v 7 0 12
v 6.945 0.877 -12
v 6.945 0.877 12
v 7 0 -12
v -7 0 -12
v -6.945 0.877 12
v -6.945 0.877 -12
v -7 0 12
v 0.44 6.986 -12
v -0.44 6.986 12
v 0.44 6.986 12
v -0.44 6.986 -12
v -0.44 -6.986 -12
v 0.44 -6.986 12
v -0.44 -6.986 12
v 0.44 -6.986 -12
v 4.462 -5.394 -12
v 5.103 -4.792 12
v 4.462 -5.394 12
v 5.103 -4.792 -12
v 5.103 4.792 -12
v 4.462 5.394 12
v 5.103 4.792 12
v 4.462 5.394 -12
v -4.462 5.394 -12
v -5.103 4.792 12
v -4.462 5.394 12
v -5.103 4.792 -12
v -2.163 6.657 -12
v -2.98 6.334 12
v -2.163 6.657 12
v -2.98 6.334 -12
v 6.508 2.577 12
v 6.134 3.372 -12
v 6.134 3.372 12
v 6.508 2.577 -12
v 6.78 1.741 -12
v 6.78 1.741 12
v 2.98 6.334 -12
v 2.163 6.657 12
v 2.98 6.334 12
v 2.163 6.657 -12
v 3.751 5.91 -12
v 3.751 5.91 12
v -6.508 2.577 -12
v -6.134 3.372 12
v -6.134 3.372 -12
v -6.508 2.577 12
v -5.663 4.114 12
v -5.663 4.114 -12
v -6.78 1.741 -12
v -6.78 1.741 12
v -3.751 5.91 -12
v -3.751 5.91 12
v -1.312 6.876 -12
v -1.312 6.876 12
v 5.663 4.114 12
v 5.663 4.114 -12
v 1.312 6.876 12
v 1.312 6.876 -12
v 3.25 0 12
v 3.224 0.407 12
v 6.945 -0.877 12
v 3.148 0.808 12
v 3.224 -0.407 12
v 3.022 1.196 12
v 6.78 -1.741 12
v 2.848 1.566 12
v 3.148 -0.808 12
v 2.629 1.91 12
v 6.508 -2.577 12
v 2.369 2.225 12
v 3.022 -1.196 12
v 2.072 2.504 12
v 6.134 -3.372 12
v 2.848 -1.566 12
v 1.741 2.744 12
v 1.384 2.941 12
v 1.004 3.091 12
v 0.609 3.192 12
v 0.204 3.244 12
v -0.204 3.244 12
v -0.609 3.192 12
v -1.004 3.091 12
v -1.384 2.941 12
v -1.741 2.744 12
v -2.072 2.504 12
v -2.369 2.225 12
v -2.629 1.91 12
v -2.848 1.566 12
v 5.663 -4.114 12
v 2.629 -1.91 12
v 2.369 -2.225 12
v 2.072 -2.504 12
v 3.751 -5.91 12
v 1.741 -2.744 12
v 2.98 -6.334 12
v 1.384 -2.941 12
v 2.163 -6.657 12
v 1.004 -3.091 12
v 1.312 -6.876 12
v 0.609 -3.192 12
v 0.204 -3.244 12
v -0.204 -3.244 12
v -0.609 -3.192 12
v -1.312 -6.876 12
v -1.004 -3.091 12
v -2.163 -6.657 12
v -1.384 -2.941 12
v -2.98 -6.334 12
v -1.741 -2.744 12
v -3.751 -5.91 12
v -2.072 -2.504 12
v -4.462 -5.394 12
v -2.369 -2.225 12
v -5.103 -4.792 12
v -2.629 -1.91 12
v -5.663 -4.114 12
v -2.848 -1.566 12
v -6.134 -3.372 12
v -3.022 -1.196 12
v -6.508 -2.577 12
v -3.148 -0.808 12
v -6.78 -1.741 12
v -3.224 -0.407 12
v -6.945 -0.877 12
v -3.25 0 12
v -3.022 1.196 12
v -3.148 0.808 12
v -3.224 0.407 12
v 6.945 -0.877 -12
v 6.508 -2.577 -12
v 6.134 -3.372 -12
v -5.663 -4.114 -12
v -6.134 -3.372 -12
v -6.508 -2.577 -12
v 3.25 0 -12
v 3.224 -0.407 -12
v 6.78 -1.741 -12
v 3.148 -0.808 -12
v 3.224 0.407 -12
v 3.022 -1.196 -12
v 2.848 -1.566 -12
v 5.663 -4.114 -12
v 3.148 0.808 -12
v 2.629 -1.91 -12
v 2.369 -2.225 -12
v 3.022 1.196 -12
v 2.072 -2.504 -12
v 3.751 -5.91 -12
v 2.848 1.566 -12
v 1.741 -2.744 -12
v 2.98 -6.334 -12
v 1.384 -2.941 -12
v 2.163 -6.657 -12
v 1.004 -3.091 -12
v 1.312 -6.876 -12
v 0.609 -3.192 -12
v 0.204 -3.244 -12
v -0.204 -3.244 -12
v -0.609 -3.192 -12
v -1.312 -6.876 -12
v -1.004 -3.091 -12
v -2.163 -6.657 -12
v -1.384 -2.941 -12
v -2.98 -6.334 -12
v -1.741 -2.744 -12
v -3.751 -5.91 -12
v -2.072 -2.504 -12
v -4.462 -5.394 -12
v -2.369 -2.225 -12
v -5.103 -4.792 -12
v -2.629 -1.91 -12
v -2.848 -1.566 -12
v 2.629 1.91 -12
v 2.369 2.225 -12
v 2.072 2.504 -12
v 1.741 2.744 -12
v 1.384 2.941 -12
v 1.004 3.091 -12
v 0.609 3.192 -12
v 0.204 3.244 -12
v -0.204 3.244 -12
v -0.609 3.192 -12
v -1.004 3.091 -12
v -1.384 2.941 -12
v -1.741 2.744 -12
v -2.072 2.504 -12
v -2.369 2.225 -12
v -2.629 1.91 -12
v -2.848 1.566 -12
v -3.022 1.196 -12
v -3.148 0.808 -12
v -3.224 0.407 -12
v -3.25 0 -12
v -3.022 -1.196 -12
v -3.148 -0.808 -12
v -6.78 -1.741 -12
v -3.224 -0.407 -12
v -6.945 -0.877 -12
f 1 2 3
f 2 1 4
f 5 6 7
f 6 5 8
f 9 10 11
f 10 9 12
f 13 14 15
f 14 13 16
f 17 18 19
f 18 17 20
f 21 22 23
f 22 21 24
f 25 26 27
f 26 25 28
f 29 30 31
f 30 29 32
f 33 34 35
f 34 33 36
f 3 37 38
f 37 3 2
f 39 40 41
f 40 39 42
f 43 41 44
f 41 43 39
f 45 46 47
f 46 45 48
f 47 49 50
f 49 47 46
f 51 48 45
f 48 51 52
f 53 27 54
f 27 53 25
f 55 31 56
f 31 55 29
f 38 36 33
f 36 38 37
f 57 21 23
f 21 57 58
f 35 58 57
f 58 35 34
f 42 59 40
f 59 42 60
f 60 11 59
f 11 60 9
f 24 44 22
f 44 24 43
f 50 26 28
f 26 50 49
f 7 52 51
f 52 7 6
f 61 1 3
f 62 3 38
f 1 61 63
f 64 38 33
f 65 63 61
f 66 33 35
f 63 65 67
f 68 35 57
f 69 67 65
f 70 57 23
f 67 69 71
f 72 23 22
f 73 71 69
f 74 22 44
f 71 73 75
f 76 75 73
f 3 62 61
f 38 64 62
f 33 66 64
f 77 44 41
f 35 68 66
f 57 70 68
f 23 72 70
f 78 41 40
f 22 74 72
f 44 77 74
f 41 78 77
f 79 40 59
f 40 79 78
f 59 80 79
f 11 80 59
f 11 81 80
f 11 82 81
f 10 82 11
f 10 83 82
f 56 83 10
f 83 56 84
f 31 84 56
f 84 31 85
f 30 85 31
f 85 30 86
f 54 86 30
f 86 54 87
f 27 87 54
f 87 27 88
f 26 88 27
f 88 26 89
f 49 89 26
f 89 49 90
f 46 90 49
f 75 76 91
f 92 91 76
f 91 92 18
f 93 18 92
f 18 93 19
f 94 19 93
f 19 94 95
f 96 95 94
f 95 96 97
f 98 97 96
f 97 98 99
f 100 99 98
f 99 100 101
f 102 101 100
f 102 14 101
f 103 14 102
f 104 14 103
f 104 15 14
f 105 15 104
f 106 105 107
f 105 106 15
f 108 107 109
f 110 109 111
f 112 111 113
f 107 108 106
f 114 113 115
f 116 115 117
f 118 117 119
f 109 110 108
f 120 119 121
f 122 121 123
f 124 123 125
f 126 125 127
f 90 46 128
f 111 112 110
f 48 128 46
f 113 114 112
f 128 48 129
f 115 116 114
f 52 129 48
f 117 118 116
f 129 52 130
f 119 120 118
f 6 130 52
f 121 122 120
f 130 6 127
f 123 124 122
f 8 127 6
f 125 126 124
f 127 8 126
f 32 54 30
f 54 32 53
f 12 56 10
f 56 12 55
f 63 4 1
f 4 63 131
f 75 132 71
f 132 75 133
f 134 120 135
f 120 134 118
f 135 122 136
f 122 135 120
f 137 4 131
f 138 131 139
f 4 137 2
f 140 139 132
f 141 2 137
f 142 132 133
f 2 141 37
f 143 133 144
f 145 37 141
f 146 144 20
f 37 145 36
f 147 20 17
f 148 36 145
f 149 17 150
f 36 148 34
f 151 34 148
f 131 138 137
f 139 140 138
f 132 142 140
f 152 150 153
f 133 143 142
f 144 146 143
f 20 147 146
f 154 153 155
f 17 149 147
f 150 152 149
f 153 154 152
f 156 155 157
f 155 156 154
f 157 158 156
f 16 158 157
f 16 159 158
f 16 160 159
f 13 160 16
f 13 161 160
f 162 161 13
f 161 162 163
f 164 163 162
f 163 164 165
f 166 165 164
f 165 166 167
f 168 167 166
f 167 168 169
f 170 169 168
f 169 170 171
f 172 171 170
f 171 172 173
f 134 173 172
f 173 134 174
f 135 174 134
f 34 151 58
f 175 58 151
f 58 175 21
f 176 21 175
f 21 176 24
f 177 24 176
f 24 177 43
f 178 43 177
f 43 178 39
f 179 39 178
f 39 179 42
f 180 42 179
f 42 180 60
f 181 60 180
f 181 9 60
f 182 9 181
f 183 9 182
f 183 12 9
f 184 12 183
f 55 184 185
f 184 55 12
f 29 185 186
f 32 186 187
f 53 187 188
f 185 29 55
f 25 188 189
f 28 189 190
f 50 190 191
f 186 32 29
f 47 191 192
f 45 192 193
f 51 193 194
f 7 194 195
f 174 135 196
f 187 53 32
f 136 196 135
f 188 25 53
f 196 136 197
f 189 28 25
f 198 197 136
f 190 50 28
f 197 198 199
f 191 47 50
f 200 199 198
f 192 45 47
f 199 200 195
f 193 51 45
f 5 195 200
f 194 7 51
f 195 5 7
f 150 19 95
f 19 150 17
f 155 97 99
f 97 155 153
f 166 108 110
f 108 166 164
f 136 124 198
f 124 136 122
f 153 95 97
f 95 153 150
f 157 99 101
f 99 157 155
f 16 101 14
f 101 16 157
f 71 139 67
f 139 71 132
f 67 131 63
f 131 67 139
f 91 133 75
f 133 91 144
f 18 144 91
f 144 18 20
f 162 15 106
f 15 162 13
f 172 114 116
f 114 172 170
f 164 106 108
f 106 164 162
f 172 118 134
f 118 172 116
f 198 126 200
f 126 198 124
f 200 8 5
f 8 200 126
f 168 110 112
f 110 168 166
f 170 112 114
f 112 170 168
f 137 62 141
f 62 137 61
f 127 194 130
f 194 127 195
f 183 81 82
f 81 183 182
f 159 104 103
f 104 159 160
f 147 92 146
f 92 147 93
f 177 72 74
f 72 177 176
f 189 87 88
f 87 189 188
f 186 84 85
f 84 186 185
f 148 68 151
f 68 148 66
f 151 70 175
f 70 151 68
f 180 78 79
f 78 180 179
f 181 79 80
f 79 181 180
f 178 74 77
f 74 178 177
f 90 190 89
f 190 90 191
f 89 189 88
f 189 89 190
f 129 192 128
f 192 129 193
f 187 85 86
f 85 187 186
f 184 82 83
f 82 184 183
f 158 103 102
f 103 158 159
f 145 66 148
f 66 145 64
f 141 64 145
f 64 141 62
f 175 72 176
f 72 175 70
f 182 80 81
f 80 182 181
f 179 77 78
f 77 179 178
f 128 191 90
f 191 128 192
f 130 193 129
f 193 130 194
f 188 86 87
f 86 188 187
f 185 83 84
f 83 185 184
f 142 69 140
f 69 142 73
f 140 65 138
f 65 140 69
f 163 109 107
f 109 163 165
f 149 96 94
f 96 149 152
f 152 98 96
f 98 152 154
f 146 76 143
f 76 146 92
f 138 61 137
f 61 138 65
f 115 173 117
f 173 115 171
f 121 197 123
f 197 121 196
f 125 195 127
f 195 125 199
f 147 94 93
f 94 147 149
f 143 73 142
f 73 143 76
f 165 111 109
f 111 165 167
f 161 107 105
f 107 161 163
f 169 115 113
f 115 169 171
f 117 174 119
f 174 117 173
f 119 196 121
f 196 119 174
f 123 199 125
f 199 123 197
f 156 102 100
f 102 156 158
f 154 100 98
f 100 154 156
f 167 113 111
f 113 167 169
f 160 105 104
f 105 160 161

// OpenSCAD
$fn = 50;


difference() {
	union() {
		translate(v = [0, 0, -12.0000000000]) {
			cylinder(h = 24, r = 7.0000000000);
		}
	}
	union() {
		translate(v = [0, 0, -100.0000000000]) {
			cylinder(h = 200, r = 3.2500000000);
		}
	}
}
